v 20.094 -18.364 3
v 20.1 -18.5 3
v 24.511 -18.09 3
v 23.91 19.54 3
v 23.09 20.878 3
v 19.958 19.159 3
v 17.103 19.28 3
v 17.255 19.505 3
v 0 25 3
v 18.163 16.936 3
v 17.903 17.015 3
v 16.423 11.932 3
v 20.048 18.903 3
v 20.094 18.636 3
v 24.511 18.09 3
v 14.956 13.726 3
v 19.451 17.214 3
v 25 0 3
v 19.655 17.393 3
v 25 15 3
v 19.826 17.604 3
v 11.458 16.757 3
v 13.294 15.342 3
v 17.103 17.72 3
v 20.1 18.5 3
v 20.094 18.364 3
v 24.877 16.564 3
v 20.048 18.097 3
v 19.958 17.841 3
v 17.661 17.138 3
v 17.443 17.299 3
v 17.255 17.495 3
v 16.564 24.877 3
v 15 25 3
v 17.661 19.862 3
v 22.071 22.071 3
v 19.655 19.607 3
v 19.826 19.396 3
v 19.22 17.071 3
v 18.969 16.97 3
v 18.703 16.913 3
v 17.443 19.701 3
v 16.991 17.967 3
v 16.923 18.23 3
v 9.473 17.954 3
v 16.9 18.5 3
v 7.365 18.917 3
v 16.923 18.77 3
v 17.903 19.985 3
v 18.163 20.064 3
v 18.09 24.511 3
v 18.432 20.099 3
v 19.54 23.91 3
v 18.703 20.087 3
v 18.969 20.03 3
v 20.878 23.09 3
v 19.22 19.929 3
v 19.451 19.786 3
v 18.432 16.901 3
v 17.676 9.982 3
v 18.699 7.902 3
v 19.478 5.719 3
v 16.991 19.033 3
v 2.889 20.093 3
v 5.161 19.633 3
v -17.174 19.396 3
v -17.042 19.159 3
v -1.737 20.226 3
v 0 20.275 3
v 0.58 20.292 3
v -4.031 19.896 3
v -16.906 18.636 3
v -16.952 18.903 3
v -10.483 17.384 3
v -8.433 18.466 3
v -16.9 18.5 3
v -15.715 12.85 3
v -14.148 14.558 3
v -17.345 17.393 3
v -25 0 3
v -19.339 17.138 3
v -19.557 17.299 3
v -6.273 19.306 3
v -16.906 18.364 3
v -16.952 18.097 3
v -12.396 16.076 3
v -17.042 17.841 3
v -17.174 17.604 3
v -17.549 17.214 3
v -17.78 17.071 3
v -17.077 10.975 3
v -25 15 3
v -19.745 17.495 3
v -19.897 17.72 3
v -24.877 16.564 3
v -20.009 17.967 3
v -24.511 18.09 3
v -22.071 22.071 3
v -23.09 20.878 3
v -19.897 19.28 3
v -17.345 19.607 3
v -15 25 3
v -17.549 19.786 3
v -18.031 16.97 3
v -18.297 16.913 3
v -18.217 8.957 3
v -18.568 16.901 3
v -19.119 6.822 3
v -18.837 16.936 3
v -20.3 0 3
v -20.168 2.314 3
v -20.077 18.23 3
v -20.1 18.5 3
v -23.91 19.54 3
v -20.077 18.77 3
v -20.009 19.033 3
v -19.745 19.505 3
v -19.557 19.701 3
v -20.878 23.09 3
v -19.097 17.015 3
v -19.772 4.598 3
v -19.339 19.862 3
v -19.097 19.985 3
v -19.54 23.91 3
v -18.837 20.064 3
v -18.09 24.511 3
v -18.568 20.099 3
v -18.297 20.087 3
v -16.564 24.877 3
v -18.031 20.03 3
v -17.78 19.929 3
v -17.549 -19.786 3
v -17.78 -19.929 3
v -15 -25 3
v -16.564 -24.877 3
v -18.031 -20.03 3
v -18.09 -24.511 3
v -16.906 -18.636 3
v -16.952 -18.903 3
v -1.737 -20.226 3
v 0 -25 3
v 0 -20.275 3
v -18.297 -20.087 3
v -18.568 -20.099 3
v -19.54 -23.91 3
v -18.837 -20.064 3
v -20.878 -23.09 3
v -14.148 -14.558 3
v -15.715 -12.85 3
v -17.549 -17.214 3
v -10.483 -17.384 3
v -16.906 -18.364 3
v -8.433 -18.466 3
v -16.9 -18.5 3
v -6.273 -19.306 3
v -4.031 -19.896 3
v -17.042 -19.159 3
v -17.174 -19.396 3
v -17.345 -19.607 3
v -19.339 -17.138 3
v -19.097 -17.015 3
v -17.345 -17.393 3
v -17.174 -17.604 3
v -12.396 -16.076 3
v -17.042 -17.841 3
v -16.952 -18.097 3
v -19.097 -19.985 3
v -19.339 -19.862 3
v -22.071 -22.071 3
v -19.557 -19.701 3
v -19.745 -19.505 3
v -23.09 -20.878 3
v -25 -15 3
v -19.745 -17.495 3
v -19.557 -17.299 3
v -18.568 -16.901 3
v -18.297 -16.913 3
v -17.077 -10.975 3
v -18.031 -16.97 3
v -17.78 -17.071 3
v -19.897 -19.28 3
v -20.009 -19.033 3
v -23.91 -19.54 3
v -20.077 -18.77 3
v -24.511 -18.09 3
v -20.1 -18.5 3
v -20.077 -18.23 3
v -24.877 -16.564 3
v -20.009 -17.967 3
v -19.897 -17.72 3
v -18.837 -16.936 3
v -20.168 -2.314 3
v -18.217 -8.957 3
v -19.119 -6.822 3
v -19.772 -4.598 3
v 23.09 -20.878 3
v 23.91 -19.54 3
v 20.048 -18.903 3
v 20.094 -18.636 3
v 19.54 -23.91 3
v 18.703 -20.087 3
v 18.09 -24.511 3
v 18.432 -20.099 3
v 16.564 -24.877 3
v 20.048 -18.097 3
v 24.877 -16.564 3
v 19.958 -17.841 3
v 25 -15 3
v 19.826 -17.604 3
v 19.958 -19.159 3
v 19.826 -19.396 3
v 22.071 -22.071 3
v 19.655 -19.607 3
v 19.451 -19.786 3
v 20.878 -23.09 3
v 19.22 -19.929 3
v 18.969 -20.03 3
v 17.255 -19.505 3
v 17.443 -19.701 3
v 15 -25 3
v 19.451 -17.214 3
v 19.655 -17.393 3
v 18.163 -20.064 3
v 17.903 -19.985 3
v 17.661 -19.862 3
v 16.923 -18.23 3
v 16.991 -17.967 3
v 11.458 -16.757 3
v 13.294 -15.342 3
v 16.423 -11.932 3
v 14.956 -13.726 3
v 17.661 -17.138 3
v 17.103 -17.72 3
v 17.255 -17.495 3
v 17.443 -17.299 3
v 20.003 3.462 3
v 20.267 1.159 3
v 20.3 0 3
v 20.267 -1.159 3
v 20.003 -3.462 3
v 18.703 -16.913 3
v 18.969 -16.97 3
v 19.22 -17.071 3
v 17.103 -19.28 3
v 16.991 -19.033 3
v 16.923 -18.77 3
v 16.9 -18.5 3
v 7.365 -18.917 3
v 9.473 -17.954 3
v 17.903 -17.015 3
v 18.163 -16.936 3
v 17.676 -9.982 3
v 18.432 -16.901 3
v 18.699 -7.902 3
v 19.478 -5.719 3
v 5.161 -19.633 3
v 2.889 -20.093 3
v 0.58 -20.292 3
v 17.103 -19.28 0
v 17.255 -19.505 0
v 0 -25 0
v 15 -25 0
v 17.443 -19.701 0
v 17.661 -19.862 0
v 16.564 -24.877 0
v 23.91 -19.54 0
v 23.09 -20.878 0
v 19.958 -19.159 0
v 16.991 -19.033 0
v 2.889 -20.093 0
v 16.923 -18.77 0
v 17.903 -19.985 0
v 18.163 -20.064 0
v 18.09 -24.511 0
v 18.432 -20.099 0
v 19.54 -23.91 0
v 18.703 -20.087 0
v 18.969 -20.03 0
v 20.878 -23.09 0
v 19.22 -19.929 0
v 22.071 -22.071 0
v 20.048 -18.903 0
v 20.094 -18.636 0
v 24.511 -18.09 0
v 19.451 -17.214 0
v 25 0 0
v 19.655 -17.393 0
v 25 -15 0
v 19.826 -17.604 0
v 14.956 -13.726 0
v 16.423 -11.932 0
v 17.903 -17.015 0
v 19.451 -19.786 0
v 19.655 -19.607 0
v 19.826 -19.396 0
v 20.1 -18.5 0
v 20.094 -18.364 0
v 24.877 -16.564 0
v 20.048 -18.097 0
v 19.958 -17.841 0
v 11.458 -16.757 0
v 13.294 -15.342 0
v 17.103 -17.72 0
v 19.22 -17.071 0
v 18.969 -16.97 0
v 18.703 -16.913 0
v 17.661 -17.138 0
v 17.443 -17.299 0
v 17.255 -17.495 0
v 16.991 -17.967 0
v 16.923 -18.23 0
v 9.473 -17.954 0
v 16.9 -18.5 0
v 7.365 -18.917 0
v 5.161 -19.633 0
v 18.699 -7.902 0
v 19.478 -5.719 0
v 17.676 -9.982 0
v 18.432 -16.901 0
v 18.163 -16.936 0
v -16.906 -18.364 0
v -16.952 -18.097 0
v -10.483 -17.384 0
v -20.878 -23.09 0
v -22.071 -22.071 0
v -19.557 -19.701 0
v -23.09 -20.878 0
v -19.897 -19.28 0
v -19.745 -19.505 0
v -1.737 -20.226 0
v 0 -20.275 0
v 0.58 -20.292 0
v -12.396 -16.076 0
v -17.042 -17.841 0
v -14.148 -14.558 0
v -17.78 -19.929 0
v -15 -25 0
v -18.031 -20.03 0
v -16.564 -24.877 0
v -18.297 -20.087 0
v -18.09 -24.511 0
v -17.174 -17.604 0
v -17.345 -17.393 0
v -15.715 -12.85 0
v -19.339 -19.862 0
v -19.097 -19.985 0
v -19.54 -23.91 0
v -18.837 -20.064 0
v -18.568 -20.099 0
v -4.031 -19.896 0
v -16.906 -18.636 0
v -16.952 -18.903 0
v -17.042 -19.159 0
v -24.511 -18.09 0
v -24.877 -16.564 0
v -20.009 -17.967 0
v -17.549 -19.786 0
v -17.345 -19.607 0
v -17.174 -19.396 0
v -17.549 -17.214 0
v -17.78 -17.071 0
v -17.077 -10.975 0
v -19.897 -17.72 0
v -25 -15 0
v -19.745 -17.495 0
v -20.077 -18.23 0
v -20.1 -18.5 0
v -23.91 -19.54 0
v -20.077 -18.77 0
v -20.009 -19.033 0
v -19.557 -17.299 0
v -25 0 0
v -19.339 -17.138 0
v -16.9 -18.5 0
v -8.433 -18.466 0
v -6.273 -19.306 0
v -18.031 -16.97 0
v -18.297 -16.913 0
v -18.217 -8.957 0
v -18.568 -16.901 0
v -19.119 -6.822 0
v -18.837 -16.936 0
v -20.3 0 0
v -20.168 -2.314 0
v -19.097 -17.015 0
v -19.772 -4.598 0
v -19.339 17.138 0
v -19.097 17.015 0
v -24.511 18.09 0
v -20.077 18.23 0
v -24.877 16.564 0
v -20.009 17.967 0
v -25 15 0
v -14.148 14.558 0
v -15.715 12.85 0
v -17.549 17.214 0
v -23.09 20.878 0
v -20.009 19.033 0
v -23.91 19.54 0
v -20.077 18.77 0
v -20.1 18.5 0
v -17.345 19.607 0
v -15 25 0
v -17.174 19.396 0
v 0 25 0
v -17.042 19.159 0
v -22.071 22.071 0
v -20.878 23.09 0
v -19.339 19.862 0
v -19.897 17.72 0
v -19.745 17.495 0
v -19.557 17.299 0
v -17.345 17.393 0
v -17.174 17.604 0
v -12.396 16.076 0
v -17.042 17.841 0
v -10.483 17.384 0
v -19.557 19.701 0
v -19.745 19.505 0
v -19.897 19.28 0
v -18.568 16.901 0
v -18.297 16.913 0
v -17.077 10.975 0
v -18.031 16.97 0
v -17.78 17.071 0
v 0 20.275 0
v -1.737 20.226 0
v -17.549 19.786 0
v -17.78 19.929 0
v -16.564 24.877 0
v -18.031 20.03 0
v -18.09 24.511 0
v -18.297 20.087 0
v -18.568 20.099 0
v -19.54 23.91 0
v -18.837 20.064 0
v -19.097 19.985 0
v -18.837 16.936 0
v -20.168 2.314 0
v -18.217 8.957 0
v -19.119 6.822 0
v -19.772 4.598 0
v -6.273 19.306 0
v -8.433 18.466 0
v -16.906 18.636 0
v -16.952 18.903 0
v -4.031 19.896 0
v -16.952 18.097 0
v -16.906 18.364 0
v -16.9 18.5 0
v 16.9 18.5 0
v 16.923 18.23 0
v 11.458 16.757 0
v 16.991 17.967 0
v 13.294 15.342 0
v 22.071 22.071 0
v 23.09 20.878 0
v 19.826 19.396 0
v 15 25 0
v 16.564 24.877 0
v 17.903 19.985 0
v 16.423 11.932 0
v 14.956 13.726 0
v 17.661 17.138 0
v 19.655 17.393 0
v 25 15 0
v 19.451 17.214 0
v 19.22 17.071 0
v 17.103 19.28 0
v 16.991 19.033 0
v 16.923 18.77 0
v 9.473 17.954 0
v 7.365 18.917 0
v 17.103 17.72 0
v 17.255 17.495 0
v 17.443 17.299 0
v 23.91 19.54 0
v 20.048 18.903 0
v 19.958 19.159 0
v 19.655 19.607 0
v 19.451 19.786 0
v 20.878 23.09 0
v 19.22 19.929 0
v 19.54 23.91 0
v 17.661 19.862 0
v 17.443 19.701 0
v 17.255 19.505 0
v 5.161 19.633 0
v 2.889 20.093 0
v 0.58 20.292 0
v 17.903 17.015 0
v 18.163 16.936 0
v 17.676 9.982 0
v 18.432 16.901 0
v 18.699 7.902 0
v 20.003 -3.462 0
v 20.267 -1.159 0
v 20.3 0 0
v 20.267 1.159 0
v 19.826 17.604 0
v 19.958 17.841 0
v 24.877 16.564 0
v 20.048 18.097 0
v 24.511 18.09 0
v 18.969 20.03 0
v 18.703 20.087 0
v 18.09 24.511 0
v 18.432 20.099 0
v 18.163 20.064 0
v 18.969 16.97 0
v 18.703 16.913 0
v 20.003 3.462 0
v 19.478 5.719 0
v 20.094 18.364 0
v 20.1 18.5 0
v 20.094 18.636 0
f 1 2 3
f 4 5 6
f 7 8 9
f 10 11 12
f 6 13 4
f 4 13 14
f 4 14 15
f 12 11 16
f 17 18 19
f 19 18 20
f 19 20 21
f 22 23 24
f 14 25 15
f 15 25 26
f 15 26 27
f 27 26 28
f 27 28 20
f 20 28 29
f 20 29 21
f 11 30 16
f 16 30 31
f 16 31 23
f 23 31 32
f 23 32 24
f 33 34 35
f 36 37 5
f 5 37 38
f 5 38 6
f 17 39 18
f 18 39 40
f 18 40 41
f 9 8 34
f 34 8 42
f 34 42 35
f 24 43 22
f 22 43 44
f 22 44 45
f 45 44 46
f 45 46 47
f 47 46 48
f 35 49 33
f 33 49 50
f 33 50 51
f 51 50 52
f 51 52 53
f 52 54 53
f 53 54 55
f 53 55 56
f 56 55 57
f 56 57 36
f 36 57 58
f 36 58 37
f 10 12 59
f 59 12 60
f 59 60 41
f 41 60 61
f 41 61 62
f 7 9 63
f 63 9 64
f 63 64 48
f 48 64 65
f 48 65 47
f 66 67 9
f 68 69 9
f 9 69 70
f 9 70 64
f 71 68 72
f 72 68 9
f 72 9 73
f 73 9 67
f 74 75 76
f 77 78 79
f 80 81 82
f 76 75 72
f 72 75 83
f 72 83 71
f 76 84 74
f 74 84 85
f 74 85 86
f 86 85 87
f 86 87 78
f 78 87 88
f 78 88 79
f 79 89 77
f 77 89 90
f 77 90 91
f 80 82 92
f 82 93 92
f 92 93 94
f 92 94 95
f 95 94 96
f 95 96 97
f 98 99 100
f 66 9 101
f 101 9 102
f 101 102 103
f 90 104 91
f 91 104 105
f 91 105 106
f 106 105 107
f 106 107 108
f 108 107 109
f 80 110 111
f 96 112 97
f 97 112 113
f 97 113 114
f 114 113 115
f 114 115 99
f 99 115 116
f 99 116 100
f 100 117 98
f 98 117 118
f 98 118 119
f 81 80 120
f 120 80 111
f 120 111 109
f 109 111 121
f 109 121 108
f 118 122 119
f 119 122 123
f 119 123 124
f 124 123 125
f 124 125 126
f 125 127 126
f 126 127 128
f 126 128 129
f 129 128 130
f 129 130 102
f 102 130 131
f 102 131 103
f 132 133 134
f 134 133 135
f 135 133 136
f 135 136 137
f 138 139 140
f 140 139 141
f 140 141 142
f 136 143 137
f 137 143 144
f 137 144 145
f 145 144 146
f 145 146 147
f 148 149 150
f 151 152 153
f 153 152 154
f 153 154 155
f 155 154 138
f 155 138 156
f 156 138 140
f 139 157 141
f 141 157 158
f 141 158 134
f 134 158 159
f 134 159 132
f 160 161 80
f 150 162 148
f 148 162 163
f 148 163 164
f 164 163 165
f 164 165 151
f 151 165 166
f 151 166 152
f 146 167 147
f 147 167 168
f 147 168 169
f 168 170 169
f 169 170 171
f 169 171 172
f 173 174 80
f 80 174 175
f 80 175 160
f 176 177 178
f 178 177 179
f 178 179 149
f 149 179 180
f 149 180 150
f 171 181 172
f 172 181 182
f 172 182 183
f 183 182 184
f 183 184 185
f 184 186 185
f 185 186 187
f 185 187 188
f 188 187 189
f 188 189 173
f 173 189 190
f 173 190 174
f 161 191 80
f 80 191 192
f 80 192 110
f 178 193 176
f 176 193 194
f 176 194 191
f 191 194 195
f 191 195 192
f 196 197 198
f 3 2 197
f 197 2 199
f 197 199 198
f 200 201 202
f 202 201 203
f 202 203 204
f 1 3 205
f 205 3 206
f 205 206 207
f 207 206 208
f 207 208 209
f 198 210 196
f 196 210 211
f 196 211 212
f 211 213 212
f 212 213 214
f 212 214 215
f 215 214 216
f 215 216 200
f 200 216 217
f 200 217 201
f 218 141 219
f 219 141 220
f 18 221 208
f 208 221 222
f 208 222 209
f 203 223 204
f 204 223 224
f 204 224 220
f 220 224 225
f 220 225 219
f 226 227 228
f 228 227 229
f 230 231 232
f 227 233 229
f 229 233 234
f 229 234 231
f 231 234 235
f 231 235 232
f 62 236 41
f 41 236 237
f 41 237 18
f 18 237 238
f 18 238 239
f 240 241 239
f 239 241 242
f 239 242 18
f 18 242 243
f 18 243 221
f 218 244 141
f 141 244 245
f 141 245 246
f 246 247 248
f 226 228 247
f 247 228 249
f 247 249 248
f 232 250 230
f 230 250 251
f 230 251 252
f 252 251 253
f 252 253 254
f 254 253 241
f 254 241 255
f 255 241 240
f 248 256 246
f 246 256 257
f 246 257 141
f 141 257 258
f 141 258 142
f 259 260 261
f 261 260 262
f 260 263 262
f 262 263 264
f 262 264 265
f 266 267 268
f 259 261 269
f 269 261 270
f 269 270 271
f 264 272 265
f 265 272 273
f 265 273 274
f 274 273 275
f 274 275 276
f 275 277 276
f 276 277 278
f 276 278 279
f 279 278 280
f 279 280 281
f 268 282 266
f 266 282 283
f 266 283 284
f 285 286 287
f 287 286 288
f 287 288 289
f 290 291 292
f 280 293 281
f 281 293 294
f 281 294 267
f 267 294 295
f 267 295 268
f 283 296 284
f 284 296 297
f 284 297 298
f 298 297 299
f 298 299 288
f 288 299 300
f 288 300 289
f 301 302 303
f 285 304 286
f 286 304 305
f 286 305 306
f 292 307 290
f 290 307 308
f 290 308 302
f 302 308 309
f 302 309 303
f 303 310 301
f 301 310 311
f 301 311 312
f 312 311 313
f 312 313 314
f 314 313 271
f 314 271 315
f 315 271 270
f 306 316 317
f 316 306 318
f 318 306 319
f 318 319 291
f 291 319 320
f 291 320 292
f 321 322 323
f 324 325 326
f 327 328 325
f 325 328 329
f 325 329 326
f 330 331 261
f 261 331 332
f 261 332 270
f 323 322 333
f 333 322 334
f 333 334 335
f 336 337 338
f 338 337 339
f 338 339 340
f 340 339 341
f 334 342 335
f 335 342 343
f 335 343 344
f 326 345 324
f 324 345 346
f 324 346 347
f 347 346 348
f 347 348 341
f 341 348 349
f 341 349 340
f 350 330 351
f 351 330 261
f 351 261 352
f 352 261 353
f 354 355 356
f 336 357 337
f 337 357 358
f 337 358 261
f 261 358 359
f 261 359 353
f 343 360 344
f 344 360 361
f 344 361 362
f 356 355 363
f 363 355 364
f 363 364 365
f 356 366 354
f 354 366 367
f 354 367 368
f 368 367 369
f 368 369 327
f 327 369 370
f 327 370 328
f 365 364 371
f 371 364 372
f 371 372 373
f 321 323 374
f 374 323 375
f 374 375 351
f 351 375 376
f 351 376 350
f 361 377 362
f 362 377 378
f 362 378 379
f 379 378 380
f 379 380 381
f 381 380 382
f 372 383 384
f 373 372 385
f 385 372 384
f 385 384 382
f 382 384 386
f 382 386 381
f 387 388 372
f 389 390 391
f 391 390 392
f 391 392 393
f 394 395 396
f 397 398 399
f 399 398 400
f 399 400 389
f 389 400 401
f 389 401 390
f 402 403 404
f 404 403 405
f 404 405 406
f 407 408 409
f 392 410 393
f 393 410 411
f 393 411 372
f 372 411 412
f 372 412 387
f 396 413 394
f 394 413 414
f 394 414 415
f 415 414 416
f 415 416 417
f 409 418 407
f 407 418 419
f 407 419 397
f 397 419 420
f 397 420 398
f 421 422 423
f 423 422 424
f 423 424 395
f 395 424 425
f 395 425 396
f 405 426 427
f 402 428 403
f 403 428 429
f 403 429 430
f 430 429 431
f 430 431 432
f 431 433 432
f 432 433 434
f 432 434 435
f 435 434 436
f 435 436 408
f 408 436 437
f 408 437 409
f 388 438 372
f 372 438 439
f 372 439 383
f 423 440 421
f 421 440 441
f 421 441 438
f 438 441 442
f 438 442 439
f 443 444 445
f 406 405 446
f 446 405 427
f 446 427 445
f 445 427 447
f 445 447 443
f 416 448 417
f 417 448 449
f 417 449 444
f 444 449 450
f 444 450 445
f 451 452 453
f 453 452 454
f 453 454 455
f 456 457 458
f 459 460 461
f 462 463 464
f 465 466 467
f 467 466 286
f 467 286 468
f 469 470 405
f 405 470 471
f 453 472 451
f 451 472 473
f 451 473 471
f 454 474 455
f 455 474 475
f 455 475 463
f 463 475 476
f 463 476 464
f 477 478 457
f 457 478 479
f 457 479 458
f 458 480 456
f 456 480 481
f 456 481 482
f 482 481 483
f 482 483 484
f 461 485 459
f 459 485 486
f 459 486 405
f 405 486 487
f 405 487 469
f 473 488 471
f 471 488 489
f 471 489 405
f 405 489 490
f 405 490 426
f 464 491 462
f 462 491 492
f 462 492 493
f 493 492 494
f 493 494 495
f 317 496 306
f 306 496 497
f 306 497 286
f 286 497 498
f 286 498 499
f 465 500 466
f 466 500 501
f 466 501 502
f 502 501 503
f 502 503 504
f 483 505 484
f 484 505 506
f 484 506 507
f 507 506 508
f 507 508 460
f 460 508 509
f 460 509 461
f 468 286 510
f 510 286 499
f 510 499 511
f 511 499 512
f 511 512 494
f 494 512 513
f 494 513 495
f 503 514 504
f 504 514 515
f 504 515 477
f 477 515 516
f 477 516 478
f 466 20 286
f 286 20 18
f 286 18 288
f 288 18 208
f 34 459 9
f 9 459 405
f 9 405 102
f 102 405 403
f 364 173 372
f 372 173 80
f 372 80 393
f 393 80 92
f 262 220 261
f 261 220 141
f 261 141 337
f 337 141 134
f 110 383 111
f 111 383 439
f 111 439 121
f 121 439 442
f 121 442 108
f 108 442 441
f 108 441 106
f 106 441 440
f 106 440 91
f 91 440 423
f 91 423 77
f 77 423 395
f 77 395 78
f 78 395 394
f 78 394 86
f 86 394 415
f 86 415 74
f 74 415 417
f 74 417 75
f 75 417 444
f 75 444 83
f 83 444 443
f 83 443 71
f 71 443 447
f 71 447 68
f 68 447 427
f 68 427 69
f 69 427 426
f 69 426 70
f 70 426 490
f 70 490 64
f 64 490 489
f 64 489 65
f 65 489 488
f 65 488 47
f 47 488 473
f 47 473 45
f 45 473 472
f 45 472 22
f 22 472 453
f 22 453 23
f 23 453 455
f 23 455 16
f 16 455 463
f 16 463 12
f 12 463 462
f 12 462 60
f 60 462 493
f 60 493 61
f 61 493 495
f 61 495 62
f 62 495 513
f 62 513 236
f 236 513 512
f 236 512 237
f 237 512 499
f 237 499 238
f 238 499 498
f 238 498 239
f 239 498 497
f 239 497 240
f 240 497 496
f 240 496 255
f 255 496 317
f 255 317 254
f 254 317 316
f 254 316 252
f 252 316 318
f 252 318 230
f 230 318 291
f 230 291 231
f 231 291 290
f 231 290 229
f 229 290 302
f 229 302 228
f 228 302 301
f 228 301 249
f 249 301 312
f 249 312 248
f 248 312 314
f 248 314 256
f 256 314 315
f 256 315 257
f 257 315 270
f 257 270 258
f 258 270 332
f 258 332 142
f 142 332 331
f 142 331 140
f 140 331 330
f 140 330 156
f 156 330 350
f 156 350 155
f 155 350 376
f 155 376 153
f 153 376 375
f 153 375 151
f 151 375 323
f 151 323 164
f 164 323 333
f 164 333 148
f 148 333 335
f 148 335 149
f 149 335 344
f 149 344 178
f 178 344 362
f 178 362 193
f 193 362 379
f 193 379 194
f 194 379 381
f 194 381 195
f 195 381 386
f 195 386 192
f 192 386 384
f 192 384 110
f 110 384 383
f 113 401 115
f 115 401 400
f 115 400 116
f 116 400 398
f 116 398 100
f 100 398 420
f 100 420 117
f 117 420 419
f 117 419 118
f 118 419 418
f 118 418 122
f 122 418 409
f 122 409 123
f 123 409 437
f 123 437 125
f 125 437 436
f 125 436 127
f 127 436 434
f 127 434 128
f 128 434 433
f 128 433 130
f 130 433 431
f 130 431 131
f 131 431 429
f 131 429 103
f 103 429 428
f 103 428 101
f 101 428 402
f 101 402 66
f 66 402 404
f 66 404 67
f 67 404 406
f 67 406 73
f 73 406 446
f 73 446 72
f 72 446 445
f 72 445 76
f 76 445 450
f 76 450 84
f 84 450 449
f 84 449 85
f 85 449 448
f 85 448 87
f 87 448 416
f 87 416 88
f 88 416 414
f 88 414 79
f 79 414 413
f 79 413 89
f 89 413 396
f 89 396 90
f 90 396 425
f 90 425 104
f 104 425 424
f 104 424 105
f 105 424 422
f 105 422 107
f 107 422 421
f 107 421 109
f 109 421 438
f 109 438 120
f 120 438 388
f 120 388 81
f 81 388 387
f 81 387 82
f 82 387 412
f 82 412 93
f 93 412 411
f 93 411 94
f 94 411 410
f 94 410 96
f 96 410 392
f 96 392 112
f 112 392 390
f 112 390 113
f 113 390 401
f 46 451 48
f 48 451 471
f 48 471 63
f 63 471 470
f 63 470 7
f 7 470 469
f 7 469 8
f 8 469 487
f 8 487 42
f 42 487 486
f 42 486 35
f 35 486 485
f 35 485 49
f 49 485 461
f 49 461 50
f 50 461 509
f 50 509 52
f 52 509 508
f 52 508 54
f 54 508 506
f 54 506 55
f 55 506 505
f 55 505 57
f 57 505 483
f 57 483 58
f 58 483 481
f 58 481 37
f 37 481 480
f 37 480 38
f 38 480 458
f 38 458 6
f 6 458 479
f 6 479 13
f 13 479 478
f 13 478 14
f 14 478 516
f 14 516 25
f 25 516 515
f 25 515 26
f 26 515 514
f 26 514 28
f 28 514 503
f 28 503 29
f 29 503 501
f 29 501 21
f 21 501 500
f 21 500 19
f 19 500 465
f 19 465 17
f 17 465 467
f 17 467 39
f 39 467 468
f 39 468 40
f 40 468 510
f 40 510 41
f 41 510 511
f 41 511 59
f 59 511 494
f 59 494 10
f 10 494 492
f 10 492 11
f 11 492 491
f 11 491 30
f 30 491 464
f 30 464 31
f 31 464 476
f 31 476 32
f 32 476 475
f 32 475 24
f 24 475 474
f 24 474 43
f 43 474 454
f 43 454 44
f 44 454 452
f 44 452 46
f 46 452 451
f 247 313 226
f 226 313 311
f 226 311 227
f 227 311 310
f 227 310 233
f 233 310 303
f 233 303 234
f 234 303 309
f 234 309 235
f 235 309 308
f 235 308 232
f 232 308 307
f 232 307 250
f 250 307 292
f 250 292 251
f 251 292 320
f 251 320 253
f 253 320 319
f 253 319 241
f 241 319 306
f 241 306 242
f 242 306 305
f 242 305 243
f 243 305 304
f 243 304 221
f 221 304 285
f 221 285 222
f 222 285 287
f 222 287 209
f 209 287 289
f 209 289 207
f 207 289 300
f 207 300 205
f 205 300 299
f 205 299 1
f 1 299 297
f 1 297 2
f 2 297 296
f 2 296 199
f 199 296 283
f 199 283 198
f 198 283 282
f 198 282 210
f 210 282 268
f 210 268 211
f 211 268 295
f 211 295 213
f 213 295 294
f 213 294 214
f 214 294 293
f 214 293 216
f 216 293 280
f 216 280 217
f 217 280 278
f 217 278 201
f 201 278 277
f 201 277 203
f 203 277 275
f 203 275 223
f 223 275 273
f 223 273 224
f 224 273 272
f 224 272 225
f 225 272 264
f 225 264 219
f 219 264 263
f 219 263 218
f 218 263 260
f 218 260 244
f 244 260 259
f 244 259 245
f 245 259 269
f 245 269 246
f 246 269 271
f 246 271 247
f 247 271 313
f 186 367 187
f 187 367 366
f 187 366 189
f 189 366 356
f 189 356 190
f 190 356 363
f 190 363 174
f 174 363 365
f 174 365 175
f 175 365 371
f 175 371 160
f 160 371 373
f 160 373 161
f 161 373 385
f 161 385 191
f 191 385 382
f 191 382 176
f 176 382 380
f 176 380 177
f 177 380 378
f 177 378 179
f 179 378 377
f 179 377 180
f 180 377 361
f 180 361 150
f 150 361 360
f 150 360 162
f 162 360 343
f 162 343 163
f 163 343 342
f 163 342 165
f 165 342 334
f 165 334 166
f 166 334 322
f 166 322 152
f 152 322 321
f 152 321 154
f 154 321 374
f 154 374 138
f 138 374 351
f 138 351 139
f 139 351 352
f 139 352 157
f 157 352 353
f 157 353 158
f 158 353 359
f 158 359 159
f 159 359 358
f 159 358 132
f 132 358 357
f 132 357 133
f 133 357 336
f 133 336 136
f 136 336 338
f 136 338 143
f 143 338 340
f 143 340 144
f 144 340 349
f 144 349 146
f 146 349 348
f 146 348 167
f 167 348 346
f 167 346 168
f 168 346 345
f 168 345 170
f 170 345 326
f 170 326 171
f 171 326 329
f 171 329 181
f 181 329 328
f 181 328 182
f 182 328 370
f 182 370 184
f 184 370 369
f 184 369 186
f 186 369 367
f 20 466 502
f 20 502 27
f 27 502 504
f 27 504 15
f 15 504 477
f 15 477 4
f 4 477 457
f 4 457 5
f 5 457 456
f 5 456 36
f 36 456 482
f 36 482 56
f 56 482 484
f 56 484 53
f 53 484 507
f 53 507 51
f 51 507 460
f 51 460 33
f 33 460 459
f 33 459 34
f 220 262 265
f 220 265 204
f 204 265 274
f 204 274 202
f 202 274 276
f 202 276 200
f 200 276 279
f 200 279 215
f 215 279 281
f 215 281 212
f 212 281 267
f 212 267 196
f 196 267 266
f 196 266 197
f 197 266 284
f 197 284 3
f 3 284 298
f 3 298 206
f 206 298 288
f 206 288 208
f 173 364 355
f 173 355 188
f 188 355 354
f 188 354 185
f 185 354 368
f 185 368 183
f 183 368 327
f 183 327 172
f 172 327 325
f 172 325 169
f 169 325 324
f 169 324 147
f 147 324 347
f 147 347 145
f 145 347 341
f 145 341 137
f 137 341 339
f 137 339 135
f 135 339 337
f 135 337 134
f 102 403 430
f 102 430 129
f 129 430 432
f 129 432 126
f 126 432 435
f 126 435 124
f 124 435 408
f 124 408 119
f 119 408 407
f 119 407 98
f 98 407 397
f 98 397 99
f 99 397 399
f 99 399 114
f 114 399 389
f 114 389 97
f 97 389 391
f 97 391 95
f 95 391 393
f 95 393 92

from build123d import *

# Parameters (mm, degrees)
SKETCH_2_W      = 50
SKETCH_2_H      = 50
SKETCH_2_R      = 1.6
SKETCH_2_R_2    = 20.3
EXTRUDE_1_DEPTH = 3
FILLET_1_R      = 10


with BuildPart() as part:
    # 草图2 → 凸台-拉伸1 (new body)
    with BuildSketch(Plane.XY):
        Rectangle(SKETCH_2_W, SKETCH_2_H)
        with Locations((-18.5, 18.5)):
            Circle(SKETCH_2_R, mode=Mode.SUBTRACT)
        with Locations((18.5, 18.5)):
            Circle(SKETCH_2_R, mode=Mode.SUBTRACT)
        with Locations((18.5, -18.5)):
            Circle(SKETCH_2_R, mode=Mode.SUBTRACT)
        with Locations((-18.5, -18.5)):
            Circle(SKETCH_2_R, mode=Mode.SUBTRACT)
        Circle(SKETCH_2_R_2, mode=Mode.SUBTRACT)
    extrude(amount=EXTRUDE_1_DEPTH)

    # 圆角1
    fillet_1_edges = [part.edges().sort_by_distance(p)[0] for p in [
        (25, -25, 1.5),
        (-25, -25, 1.5),
        (-25, 25, 1.5),
        (25, 25, 1.5),
    ]]
    fillet(fillet_1_edges, radius=FILLET_1_R)


solid = part.part
